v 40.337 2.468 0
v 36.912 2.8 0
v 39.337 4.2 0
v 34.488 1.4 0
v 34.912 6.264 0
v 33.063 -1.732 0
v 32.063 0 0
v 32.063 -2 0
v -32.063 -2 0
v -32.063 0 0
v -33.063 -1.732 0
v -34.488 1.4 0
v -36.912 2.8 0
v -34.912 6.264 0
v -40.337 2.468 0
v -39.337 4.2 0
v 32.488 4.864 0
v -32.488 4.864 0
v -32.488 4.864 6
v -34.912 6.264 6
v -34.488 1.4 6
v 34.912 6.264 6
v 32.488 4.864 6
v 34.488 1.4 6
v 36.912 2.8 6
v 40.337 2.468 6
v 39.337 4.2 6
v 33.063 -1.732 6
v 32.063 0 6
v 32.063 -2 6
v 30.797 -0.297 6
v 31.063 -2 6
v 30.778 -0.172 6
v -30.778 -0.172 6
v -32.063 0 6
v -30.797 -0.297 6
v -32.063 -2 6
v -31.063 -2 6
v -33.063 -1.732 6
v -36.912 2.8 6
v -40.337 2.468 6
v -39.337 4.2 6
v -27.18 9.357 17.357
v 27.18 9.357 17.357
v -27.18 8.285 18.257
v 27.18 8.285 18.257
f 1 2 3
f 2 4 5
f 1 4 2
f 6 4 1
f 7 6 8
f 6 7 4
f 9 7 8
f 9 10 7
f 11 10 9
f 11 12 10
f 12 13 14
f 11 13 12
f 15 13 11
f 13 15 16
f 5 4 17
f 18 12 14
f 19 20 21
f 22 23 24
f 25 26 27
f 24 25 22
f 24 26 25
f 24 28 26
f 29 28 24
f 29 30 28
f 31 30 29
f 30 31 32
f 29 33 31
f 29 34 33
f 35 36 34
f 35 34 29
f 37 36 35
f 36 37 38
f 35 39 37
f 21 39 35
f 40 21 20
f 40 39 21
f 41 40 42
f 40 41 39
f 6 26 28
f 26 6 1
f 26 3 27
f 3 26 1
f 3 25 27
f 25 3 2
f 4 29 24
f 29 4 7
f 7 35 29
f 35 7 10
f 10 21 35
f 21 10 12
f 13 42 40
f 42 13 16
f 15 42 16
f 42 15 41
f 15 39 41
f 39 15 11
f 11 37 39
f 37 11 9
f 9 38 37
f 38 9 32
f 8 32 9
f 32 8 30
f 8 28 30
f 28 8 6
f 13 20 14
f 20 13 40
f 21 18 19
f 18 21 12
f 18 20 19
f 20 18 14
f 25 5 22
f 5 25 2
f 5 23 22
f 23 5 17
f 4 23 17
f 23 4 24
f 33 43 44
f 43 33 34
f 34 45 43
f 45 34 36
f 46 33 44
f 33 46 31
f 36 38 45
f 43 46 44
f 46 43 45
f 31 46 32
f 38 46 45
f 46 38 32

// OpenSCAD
/* MONOPRICE MP MINI DELTA, TOWER SHIELD
   keep debris from falling through the towers into the printer's inner
   workings. Patterned after thetrebor's "Monoprice Mini Delta V2 Shield"
   (https://www.thingiverse.com/thing:2622002).

   (see https://github.com/aegean-odyssey/mpmd-tower-shield/)
*/
/* 
Copyright (c) 2020 Aegean Associates, Inc. All rights reserved.

Redistribution and use in source and binary forms, with or without
modification, are permitted (subject to the limitations in the disclaimer
below) provided that the following conditions are met:

     * Redistributions of source code must retain the above copyright notice,
     this list of conditions and the following disclaimer.

     * Redistributions in binary form must reproduce the above copyright
     notice, this list of conditions and the following disclaimer in the
     documentation and/or other materials provided with the distribution.

     * Neither the name of the copyright holder nor the names of its
     contributors may be used to endorse or promote products derived from this
     software without specific prior written permission.

NO EXPRESS OR IMPLIED LICENSES TO ANY PARTY'S PATENT RIGHTS ARE GRANTED BY
THIS LICENSE. THIS SOFTWARE IS PROVIDED BY THE COPYRIGHT HOLDERS AND
CONTRIBUTORS "AS IS" AND ANY EXPRESS OR IMPLIED WARRANTIES, INCLUDING, BUT NOT
LIMITED TO, THE IMPLIED WARRANTIES OF MERCHANTABILITY AND FITNESS FOR A
PARTICULAR PURPOSE ARE DISCLAIMED. IN NO EVENT SHALL THE COPYRIGHT HOLDER OR
CONTRIBUTORS BE LIABLE FOR ANY DIRECT, INDIRECT, INCIDENTAL, SPECIAL,
EXEMPLARY, OR CONSEQUENTIAL DAMAGES (INCLUDING, BUT NOT LIMITED TO,
PROCUREMENT OF SUBSTITUTE GOODS OR SERVICES; LOSS OF USE, DATA, OR PROFITS; OR
BUSINESS INTERRUPTION) HOWEVER CAUSED AND ON ANY THEORY OF LIABILITY, WHETHER
IN CONTRACT, STRICT LIABILITY, OR TORT (INCLUDING NEGLIGENCE OR OTHERWISE)
ARISING IN ANY WAY OUT OF THE USE OF THIS SOFTWARE, EVEN IF ADVISED OF THE
POSSIBILITY OF SUCH DAMAGE.
*/   

/* 3D PRINTING
   layer height:    0.200mm
   supports:        not required
*/

A = 64.4; // center to center distance of tower screws
B = 7.0;  // distance from screw center to channel edge
C = 8.4;  // channel width (really, 2x slot center to inside edge)
D = 2.8;  // channel slot (tab) width
E = 4.0;  // channel slot (tab) depth
F = 16;   // flap height
G = 50;   // flap angle (degrees)
H = 6;    // bar height
t = 2.0;  // bar thickness
j = 1.4;  // flap thickness

module tower_shield() 
{
    xa = (A + B - C*cos(30))/2;
    xb = xa + C*cos(30);
    xc = xb + t*sin(30);
    xd = xa + t*sin(30);
    xe = xa;
    ya = 0;
    yb = ya + C*sin(30);
    yc = yb - t*cos(30);
    yd = ya - t*cos(30);
    ye = ya - t;
    bp = [[+xa,ya],[+xb,yb],[+xc,yc],[+xd,yd],[+xe,ye],
          [-xe,ye],[-xd,yd],[-xc,yc],[-xb,yb],[-xa,ya]];
    linear_extrude(H) polygon(bp);
    module T() { translate([-D/2,0]) cube([D,E,H]); }
    translate([-(xa+xb),(ya+yb)]/2) rotate(-30) T();
    translate([+(xa+xb),(ya+yb)]/2) rotate(+30) T();
    fa = xa - 1;
    fp = [[-fa,0],[-fa*7/8,F],[+fa*7/8,F],[+fa,0]];
    translate([0,j*sin(G)-t,H-j*cos(G)])
        rotate([G,0,0]) linear_extrude(j) polygon(fp);
}

module mouse_ears(layer_height=0.200, first_layer=0.200) 
{
    // loosely tied to the dimensions
    x = (A + B + C*cos(3))/2 - t;
    difference() {
        union() {
            translate([-x,t,0]) cylinder(d=14,h=layer_height+first_layer);
            translate([+x,t,0]) cylinder(d=14,h=layer_height+first_layer);
        }
        translate([0,0,-0.1]) linear_extrude(first_layer+0.1)
            offset(delta=0.4) projection() tower_shield();
    }
}

tower_shield();
